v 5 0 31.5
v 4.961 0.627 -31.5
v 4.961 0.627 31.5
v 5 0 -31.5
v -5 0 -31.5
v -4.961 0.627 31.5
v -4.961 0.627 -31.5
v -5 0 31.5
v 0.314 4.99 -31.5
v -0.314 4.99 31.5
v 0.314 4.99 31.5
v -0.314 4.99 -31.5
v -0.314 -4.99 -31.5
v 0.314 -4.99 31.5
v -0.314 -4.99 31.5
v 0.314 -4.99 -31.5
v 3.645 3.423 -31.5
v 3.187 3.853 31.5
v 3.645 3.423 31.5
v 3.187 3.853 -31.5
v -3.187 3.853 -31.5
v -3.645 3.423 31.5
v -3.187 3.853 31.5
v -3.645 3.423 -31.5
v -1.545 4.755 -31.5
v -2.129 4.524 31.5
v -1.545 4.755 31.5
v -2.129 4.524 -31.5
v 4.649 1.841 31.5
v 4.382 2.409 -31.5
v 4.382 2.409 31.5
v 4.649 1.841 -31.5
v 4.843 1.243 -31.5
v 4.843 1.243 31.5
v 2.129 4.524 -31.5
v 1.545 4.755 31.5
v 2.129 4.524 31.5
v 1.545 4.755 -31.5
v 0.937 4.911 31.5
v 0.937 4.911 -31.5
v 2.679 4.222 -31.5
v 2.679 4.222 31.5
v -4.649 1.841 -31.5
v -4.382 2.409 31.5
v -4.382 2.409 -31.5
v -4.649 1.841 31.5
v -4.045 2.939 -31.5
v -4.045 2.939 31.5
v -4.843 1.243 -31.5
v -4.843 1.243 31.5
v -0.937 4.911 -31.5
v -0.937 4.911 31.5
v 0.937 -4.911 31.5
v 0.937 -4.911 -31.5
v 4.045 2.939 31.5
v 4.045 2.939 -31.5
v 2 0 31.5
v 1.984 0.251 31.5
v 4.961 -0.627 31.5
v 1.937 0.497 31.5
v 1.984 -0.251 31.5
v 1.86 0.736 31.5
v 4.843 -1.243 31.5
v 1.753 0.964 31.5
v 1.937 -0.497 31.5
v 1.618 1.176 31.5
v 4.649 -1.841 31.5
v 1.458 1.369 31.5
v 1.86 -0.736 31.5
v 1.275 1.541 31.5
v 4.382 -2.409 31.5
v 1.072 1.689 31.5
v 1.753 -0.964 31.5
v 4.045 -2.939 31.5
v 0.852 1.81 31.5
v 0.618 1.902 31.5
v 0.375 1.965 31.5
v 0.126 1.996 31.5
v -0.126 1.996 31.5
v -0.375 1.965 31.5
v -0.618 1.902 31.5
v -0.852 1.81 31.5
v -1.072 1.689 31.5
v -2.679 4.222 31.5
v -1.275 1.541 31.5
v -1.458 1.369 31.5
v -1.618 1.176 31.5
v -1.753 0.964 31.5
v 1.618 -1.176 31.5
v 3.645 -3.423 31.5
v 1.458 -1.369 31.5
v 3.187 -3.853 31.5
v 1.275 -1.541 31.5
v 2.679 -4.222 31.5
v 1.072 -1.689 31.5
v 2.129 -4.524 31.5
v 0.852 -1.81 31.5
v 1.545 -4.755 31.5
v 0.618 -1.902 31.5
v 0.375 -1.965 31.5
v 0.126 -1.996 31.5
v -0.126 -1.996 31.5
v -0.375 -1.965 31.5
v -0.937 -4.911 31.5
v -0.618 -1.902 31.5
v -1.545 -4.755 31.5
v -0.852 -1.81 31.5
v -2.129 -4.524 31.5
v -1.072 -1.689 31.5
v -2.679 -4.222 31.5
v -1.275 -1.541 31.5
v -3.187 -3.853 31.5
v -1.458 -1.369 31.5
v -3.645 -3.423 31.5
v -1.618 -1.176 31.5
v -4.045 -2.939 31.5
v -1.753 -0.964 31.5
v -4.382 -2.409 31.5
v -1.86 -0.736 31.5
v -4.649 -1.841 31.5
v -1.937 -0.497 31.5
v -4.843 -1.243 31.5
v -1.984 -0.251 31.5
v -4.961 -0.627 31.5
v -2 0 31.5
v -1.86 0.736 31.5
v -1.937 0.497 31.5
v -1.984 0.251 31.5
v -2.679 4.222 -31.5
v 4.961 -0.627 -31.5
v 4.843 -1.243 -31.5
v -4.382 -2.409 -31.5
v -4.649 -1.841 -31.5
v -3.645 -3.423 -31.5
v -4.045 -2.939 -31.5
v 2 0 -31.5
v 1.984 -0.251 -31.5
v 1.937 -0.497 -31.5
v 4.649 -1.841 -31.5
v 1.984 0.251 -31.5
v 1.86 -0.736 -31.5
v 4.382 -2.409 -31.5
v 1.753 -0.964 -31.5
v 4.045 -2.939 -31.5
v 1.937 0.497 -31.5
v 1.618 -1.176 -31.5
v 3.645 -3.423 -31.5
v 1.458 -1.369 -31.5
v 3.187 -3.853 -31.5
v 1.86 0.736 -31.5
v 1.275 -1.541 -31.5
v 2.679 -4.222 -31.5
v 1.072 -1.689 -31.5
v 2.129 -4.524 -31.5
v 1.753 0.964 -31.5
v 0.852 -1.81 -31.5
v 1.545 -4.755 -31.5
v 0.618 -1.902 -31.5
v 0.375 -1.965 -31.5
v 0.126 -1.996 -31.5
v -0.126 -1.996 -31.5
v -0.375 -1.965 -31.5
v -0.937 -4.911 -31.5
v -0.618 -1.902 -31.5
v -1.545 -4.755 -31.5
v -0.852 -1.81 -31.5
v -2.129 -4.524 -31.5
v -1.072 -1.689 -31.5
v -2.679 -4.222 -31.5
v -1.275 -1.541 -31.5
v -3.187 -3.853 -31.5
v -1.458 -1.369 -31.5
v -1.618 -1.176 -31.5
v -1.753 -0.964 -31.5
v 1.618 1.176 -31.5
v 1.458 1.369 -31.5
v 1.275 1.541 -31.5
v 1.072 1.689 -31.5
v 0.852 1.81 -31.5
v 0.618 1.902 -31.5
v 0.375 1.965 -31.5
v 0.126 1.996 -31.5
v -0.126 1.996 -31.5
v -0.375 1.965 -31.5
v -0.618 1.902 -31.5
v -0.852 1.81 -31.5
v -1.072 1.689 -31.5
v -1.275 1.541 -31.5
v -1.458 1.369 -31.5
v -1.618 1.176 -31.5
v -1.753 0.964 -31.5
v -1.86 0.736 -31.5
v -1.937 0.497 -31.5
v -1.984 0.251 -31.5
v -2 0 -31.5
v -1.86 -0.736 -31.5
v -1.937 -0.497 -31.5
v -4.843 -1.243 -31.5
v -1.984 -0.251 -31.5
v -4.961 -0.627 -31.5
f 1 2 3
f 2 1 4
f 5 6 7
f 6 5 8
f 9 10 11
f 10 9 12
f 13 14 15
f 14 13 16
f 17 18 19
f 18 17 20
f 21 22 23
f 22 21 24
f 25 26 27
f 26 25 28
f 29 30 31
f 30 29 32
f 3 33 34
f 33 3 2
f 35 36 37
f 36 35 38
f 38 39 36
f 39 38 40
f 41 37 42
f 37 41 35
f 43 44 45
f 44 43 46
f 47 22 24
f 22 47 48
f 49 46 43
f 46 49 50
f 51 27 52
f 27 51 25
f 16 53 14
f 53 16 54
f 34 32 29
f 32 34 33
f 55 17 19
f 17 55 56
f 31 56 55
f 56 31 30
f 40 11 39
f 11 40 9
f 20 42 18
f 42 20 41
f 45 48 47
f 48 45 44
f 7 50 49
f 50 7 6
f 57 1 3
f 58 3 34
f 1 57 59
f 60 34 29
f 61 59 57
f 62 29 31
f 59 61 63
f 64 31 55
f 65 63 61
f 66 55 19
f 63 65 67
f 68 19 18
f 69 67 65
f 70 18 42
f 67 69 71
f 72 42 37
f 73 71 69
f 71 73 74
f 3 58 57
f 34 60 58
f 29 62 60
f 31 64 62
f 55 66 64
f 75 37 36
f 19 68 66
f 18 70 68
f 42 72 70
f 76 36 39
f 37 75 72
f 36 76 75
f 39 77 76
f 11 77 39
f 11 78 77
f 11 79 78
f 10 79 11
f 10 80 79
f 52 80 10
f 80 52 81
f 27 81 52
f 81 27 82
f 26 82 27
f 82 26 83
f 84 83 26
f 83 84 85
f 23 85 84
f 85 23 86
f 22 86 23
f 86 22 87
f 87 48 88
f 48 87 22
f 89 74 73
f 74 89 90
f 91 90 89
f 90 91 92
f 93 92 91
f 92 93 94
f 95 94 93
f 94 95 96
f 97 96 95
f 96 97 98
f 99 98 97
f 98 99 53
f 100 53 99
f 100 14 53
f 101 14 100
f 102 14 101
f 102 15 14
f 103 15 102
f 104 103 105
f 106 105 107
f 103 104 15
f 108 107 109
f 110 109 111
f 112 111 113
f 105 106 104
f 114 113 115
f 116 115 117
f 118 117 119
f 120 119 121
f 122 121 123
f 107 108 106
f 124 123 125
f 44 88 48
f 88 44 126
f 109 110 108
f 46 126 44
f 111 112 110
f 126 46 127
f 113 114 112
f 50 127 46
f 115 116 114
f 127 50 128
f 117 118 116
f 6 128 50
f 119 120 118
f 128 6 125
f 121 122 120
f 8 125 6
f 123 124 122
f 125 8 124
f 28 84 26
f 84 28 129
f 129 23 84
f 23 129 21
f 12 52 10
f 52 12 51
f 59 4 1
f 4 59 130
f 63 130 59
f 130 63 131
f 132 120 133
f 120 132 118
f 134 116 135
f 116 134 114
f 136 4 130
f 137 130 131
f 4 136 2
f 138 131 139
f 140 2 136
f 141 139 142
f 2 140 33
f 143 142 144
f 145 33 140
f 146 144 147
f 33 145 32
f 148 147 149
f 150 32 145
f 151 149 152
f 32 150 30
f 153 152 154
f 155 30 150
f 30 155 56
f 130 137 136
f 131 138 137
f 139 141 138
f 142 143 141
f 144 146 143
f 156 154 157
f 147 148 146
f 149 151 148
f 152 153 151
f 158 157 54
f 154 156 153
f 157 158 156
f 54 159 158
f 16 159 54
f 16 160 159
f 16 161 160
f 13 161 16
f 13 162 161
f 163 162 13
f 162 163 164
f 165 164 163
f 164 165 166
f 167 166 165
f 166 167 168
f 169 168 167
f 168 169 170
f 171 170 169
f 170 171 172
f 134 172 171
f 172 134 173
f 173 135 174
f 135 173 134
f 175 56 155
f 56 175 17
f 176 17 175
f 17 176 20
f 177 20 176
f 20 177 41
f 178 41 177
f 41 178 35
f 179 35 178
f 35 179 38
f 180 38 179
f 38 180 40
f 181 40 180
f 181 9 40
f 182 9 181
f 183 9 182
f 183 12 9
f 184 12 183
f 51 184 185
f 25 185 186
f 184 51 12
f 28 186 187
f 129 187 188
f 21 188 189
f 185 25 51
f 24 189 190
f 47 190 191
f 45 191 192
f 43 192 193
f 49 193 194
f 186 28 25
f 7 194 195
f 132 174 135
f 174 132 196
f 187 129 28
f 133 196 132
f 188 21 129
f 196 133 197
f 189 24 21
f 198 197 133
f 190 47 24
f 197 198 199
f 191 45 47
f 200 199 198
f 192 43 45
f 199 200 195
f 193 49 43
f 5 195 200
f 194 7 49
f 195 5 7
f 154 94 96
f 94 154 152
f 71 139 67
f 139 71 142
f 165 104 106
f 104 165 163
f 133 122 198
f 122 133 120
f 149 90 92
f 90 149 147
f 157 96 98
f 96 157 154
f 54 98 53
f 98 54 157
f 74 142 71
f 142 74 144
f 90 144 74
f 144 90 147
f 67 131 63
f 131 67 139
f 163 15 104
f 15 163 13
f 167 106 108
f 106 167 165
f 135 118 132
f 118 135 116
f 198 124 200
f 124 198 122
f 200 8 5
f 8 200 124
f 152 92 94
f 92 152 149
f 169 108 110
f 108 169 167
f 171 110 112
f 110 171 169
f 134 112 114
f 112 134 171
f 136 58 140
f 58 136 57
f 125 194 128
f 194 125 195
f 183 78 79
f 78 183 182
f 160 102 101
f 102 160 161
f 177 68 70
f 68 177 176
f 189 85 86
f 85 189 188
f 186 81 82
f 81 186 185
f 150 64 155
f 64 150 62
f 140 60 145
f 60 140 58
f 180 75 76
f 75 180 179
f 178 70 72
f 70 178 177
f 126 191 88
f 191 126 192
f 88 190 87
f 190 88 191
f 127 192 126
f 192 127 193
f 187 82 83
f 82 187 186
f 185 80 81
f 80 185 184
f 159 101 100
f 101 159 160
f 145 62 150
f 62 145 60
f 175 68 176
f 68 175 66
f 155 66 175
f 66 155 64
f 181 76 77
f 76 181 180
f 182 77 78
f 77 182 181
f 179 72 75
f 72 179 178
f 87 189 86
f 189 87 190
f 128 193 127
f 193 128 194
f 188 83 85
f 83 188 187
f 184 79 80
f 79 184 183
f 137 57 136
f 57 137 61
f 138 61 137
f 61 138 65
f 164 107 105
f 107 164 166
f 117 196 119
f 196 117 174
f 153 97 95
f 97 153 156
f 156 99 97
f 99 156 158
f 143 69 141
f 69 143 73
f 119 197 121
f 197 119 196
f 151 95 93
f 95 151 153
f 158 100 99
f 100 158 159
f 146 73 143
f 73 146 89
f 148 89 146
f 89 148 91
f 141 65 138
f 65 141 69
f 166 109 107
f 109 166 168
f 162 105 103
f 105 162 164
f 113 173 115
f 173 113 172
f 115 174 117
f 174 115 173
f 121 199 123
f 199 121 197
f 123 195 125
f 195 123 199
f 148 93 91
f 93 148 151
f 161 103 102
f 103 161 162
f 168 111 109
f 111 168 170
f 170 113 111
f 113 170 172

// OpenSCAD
$fn = 50;


difference() {
	union() {
		translate(v = [0, 0, -31.5000000000]) {
			cylinder(h = 63, r = 5.0000000000);
		}
	}
	union() {
		translate(v = [0, 0, -100.0000000000]) {
			cylinder(h = 200, r = 2);
		}
	}
}
